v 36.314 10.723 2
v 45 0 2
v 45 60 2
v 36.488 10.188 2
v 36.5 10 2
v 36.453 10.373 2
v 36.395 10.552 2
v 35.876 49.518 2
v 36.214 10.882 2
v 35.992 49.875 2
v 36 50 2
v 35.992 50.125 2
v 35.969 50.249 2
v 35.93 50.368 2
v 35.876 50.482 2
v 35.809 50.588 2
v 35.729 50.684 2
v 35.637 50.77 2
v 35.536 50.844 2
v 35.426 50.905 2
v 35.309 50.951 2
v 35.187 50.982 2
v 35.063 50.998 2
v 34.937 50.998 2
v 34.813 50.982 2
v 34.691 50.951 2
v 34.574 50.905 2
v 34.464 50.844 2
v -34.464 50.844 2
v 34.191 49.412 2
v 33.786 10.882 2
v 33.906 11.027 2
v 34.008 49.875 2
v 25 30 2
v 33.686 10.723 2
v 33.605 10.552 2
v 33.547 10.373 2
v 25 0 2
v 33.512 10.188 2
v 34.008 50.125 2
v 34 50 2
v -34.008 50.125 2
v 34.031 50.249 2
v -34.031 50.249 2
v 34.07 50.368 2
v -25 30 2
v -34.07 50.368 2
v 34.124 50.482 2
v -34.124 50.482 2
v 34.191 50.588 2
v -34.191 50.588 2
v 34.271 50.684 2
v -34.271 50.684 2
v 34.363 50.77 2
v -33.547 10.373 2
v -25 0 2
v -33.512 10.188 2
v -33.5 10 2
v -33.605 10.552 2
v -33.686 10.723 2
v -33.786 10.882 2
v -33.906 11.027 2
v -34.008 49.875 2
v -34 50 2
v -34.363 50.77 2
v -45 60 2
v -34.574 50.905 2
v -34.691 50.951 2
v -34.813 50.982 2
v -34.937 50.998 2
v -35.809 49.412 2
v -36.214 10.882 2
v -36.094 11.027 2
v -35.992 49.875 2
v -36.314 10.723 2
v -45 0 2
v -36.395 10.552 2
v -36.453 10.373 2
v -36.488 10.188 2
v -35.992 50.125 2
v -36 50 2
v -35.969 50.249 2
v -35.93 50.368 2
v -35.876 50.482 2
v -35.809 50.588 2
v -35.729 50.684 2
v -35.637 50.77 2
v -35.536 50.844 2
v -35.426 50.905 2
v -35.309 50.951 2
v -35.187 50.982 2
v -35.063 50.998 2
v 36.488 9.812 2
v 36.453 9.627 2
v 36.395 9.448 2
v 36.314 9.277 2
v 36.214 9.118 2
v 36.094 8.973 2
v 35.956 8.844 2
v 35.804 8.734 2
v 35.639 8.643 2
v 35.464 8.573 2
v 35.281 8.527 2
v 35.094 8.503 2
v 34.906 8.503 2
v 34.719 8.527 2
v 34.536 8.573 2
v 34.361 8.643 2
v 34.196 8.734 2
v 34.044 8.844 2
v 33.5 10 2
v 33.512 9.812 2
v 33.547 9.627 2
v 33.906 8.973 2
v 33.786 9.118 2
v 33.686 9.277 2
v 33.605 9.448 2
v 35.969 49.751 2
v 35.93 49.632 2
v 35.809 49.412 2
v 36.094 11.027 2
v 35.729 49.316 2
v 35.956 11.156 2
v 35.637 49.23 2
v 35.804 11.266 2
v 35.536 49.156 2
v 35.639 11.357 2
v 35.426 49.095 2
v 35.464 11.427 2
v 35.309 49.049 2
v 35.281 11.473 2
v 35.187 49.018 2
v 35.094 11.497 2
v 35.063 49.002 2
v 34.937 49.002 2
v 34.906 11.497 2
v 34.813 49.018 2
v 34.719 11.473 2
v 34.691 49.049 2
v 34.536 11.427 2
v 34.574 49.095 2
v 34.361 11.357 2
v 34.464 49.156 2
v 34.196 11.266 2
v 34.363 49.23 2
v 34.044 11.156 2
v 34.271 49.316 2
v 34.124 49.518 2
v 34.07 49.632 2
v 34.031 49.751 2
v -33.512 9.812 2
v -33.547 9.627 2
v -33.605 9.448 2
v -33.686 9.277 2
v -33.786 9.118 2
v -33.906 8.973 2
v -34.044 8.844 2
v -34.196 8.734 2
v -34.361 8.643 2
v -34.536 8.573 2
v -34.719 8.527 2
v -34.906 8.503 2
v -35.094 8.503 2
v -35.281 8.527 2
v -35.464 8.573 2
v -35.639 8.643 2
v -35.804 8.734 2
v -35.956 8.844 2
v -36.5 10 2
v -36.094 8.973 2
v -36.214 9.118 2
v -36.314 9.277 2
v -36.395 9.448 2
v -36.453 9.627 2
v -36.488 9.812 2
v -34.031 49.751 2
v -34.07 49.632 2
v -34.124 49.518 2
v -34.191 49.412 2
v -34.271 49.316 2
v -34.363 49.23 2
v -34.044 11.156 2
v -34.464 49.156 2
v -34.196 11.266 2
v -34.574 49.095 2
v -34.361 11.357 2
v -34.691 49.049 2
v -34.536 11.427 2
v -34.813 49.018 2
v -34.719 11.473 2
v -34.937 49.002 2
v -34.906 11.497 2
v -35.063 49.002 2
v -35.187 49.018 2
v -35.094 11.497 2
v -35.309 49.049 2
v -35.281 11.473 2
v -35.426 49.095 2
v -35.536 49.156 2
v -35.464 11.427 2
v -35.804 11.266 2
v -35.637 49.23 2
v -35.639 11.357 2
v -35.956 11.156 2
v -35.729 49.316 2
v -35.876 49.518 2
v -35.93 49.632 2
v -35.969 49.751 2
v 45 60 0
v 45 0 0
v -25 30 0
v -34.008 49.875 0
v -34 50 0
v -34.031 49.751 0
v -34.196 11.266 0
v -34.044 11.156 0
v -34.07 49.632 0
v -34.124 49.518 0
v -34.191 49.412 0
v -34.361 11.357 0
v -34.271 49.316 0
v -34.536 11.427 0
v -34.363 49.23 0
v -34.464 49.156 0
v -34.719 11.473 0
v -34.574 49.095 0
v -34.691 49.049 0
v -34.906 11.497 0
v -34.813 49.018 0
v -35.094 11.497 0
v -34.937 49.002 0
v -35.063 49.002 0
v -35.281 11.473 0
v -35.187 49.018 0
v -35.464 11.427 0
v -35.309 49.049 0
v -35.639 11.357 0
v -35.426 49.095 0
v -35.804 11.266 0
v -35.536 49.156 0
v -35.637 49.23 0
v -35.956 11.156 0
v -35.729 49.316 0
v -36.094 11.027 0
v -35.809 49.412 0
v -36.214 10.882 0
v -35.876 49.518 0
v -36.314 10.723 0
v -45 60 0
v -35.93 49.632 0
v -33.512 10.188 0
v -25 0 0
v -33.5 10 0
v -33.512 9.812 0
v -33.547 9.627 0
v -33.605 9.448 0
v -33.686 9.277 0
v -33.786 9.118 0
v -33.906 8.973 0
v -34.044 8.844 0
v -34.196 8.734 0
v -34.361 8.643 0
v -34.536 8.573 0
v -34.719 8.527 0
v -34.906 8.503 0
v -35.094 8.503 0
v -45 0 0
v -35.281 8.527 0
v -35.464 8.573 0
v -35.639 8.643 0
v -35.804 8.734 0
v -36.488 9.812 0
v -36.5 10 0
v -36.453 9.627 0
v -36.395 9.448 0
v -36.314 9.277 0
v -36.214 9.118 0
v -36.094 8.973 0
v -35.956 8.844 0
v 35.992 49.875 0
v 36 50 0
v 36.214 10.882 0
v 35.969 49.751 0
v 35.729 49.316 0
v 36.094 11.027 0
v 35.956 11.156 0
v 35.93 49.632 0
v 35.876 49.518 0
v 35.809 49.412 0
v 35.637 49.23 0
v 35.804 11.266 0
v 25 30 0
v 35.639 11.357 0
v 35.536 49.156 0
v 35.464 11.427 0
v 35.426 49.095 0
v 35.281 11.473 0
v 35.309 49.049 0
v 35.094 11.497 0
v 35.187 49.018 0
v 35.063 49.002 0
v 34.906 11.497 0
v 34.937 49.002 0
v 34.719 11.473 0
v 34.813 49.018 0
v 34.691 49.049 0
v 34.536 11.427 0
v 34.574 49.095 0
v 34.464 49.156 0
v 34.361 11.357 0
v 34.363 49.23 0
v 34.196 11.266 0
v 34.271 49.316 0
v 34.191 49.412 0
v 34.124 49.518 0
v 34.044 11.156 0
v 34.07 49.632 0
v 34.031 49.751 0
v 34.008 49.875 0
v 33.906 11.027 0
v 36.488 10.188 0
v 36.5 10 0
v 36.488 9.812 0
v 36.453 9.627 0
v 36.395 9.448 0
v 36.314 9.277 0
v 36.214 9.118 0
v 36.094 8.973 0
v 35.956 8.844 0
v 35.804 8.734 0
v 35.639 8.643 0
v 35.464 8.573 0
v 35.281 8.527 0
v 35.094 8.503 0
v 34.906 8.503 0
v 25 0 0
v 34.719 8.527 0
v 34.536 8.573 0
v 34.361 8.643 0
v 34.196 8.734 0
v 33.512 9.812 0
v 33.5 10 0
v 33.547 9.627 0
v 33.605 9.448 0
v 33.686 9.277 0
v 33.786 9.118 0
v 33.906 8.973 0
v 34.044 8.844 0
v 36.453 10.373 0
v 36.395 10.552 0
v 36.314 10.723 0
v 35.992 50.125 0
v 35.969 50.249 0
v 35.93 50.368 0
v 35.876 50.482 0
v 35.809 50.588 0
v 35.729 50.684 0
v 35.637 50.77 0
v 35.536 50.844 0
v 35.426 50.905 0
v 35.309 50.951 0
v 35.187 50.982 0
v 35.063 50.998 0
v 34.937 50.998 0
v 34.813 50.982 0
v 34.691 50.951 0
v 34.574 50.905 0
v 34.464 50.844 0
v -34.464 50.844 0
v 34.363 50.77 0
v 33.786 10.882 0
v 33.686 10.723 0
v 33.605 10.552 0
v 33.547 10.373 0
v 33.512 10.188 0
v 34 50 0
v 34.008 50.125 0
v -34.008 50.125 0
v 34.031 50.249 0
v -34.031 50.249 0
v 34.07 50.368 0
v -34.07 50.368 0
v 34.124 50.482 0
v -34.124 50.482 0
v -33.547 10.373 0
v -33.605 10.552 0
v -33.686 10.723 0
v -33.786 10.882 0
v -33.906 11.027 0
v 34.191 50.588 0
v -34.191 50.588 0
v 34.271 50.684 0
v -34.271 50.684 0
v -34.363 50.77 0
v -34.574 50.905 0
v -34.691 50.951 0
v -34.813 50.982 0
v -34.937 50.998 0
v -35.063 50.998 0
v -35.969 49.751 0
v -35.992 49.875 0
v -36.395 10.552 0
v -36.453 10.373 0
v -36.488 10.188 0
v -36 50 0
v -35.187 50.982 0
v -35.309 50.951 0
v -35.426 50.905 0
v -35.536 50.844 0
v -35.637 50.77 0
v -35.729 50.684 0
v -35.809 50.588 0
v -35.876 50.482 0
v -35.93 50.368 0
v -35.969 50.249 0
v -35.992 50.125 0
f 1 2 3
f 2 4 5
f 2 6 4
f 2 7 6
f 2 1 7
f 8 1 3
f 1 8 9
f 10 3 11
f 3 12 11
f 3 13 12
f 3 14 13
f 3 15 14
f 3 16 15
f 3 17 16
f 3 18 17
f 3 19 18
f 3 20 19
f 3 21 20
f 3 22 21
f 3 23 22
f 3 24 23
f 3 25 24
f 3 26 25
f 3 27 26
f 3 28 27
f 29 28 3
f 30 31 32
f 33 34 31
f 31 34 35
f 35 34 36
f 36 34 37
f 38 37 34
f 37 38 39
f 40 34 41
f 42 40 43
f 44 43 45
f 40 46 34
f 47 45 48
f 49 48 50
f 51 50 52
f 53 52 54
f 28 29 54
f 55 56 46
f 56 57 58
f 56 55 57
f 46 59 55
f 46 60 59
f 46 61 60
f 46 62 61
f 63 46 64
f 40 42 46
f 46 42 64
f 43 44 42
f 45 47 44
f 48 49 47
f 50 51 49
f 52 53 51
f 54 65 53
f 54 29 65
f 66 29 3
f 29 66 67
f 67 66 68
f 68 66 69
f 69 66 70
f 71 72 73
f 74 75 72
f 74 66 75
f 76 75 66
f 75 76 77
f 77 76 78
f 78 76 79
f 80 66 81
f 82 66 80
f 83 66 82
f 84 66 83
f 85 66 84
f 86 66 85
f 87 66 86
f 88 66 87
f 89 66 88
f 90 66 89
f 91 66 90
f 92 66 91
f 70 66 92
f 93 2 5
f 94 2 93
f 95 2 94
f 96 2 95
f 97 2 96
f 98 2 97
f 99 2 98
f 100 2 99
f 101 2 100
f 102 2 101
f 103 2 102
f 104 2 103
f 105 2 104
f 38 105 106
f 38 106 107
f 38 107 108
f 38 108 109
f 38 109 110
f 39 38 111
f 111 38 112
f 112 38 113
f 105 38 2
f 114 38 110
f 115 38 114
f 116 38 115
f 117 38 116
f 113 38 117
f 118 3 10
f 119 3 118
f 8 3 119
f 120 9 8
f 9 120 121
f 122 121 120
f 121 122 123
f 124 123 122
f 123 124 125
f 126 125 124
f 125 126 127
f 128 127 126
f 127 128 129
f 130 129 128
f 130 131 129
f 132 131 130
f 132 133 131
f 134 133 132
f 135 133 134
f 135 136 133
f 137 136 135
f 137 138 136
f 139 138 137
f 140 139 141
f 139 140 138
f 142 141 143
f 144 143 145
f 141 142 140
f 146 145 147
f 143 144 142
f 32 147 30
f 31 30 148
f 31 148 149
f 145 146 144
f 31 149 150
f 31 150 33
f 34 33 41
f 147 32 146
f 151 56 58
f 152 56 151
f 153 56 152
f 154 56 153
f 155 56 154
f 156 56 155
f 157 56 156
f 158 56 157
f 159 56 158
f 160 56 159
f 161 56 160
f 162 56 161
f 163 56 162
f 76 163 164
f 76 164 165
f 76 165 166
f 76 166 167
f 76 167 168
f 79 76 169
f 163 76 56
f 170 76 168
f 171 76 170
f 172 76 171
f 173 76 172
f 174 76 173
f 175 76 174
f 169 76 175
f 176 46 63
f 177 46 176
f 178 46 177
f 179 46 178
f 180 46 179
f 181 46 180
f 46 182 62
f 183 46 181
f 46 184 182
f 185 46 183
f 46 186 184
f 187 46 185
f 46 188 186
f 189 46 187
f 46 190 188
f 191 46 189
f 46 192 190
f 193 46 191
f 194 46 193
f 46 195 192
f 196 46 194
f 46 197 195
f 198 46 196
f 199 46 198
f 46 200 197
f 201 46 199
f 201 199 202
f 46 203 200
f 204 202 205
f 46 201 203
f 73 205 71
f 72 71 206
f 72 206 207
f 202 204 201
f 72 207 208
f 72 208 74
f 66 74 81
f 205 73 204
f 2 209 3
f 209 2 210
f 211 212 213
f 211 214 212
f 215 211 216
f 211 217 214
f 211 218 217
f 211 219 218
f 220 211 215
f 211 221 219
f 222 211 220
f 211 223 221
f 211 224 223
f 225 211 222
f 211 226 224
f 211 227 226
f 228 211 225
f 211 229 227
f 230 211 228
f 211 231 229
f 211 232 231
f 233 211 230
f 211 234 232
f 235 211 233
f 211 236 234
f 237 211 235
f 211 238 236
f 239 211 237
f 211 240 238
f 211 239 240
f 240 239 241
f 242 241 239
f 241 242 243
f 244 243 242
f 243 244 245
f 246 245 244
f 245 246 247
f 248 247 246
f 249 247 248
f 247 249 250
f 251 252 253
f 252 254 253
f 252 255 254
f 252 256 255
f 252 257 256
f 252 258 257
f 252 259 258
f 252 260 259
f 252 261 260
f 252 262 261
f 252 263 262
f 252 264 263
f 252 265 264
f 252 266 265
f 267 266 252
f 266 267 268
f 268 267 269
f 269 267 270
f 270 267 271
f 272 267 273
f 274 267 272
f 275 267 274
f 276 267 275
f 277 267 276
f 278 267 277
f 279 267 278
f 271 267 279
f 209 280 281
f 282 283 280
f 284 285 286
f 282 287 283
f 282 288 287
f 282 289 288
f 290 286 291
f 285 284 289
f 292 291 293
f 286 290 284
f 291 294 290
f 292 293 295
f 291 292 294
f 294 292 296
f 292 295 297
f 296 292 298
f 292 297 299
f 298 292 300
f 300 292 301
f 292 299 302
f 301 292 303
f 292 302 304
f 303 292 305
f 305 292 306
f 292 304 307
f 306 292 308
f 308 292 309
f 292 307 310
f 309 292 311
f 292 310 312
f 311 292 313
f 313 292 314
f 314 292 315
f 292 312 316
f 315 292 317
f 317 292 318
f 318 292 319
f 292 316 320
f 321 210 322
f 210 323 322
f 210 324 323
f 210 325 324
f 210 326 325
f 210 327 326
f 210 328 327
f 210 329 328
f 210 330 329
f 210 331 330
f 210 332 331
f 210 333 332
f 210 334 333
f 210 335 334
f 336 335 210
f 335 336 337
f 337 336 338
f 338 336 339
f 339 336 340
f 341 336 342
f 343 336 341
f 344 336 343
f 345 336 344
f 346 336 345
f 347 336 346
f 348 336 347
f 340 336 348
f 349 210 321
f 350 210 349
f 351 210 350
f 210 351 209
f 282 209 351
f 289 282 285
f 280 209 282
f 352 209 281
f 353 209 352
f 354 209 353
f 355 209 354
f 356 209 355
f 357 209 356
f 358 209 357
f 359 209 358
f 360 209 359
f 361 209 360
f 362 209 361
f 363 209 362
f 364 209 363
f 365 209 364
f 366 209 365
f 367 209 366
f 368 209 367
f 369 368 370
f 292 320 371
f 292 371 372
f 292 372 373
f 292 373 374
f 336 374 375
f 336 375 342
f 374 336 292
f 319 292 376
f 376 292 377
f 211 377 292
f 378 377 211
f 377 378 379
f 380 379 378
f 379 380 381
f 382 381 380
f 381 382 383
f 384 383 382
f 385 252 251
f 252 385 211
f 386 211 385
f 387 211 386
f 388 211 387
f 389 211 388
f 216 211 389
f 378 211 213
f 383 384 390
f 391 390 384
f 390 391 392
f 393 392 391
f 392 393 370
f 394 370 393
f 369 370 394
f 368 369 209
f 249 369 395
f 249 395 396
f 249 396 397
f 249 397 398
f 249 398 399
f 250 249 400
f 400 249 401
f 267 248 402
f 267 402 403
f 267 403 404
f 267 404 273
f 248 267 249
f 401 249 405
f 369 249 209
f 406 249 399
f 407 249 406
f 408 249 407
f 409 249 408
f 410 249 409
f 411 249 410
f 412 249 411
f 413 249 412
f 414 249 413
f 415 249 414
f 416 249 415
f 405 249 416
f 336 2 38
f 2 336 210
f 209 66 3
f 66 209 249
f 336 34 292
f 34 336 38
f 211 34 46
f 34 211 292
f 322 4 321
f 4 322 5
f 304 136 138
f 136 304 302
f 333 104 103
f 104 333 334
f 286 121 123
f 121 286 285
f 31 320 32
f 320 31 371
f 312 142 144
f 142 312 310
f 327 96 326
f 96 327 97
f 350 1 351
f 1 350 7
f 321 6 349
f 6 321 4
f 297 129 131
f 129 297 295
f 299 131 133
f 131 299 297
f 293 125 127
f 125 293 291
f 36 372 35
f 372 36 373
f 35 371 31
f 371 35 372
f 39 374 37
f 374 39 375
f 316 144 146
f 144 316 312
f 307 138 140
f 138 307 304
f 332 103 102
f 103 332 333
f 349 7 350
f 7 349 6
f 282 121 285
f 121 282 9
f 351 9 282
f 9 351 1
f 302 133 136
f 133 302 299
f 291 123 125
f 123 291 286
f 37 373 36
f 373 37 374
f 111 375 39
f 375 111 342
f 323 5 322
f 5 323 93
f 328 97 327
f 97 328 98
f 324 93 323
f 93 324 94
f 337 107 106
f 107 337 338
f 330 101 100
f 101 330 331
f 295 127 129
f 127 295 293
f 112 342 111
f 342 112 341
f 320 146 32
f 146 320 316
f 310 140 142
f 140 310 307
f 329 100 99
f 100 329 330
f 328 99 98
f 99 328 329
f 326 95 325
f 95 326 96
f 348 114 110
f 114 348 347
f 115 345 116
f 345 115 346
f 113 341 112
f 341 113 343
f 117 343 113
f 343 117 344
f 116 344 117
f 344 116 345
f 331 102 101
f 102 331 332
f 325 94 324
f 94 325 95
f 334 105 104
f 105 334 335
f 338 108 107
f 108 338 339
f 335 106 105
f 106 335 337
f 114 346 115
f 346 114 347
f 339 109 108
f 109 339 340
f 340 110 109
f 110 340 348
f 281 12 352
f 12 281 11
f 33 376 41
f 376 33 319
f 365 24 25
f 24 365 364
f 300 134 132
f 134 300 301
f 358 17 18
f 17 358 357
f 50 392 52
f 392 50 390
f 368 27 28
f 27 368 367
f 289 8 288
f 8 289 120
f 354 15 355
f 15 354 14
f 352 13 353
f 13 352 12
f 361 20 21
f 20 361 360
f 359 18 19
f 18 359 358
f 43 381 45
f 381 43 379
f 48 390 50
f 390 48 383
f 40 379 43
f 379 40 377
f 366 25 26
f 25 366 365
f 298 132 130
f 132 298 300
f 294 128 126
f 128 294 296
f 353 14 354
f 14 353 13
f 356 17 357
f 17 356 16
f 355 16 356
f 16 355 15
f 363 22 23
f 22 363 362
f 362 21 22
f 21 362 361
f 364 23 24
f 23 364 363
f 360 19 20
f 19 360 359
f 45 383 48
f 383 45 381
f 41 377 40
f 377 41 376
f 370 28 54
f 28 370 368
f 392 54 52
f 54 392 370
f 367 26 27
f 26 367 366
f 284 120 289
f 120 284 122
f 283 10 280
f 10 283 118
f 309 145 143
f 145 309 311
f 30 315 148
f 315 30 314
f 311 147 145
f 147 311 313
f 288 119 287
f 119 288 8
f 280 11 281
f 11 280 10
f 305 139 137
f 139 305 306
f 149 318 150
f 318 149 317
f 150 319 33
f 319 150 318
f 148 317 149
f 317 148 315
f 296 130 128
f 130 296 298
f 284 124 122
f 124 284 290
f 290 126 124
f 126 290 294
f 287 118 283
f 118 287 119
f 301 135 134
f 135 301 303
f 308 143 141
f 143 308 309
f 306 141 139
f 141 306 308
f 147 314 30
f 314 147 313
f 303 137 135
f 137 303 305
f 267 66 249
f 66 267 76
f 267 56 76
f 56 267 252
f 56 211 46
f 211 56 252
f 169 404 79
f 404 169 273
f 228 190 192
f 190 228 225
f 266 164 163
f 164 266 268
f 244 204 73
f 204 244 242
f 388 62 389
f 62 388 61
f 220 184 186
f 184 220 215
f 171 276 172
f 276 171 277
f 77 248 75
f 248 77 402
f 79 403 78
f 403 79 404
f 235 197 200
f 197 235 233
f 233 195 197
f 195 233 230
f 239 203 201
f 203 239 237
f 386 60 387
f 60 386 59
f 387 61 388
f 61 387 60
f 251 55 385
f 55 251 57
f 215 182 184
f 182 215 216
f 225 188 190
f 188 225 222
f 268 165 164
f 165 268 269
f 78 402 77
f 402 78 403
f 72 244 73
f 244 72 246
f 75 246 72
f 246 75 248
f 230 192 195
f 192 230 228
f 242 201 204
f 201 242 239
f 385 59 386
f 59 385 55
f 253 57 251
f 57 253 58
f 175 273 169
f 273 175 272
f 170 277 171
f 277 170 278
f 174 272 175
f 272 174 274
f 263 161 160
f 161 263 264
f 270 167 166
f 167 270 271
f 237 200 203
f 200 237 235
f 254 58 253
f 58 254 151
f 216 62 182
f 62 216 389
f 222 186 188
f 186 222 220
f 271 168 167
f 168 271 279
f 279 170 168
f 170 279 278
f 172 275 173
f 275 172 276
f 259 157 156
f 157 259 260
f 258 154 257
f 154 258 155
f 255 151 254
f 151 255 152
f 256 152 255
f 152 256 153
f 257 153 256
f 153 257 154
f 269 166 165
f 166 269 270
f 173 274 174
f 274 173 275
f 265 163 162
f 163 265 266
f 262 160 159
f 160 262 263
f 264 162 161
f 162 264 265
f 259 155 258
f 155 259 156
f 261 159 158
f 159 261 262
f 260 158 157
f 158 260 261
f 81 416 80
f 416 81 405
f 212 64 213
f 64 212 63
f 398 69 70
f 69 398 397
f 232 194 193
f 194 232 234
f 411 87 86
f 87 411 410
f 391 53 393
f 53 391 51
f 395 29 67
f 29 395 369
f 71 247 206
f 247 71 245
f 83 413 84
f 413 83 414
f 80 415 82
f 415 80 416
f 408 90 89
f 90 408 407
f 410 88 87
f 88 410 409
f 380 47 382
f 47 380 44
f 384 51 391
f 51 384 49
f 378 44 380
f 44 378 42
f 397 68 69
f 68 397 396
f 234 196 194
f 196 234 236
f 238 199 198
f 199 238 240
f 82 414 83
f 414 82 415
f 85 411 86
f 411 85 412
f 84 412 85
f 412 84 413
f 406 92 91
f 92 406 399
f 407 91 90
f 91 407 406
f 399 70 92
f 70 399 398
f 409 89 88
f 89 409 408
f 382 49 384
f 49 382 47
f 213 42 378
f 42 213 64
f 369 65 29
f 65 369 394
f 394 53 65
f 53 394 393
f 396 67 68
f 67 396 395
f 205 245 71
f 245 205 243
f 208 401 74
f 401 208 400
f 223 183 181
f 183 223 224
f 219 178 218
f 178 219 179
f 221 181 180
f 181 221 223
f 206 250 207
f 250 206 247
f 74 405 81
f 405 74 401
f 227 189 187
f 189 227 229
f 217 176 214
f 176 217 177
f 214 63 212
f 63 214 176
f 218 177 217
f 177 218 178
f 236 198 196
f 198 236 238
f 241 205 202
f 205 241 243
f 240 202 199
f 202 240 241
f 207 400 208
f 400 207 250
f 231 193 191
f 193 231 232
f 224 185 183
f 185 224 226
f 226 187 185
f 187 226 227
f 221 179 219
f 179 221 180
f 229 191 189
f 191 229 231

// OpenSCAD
$fn = 50;
t = 2;

module holder() {
    union() {
        difference() {
            cube([45, 60, t]);
            cube([25, 30, t]);
            translate([35, 10, 0]) {
                cylinder(t, 1.5, 1.5);
            } 
            
            translate([35, 50, 0]) {
                cylinder(t, 1, 1);
            } 
        }
    }
}

holder();
mirror([1, 0, 0]) {
    holder();
}
